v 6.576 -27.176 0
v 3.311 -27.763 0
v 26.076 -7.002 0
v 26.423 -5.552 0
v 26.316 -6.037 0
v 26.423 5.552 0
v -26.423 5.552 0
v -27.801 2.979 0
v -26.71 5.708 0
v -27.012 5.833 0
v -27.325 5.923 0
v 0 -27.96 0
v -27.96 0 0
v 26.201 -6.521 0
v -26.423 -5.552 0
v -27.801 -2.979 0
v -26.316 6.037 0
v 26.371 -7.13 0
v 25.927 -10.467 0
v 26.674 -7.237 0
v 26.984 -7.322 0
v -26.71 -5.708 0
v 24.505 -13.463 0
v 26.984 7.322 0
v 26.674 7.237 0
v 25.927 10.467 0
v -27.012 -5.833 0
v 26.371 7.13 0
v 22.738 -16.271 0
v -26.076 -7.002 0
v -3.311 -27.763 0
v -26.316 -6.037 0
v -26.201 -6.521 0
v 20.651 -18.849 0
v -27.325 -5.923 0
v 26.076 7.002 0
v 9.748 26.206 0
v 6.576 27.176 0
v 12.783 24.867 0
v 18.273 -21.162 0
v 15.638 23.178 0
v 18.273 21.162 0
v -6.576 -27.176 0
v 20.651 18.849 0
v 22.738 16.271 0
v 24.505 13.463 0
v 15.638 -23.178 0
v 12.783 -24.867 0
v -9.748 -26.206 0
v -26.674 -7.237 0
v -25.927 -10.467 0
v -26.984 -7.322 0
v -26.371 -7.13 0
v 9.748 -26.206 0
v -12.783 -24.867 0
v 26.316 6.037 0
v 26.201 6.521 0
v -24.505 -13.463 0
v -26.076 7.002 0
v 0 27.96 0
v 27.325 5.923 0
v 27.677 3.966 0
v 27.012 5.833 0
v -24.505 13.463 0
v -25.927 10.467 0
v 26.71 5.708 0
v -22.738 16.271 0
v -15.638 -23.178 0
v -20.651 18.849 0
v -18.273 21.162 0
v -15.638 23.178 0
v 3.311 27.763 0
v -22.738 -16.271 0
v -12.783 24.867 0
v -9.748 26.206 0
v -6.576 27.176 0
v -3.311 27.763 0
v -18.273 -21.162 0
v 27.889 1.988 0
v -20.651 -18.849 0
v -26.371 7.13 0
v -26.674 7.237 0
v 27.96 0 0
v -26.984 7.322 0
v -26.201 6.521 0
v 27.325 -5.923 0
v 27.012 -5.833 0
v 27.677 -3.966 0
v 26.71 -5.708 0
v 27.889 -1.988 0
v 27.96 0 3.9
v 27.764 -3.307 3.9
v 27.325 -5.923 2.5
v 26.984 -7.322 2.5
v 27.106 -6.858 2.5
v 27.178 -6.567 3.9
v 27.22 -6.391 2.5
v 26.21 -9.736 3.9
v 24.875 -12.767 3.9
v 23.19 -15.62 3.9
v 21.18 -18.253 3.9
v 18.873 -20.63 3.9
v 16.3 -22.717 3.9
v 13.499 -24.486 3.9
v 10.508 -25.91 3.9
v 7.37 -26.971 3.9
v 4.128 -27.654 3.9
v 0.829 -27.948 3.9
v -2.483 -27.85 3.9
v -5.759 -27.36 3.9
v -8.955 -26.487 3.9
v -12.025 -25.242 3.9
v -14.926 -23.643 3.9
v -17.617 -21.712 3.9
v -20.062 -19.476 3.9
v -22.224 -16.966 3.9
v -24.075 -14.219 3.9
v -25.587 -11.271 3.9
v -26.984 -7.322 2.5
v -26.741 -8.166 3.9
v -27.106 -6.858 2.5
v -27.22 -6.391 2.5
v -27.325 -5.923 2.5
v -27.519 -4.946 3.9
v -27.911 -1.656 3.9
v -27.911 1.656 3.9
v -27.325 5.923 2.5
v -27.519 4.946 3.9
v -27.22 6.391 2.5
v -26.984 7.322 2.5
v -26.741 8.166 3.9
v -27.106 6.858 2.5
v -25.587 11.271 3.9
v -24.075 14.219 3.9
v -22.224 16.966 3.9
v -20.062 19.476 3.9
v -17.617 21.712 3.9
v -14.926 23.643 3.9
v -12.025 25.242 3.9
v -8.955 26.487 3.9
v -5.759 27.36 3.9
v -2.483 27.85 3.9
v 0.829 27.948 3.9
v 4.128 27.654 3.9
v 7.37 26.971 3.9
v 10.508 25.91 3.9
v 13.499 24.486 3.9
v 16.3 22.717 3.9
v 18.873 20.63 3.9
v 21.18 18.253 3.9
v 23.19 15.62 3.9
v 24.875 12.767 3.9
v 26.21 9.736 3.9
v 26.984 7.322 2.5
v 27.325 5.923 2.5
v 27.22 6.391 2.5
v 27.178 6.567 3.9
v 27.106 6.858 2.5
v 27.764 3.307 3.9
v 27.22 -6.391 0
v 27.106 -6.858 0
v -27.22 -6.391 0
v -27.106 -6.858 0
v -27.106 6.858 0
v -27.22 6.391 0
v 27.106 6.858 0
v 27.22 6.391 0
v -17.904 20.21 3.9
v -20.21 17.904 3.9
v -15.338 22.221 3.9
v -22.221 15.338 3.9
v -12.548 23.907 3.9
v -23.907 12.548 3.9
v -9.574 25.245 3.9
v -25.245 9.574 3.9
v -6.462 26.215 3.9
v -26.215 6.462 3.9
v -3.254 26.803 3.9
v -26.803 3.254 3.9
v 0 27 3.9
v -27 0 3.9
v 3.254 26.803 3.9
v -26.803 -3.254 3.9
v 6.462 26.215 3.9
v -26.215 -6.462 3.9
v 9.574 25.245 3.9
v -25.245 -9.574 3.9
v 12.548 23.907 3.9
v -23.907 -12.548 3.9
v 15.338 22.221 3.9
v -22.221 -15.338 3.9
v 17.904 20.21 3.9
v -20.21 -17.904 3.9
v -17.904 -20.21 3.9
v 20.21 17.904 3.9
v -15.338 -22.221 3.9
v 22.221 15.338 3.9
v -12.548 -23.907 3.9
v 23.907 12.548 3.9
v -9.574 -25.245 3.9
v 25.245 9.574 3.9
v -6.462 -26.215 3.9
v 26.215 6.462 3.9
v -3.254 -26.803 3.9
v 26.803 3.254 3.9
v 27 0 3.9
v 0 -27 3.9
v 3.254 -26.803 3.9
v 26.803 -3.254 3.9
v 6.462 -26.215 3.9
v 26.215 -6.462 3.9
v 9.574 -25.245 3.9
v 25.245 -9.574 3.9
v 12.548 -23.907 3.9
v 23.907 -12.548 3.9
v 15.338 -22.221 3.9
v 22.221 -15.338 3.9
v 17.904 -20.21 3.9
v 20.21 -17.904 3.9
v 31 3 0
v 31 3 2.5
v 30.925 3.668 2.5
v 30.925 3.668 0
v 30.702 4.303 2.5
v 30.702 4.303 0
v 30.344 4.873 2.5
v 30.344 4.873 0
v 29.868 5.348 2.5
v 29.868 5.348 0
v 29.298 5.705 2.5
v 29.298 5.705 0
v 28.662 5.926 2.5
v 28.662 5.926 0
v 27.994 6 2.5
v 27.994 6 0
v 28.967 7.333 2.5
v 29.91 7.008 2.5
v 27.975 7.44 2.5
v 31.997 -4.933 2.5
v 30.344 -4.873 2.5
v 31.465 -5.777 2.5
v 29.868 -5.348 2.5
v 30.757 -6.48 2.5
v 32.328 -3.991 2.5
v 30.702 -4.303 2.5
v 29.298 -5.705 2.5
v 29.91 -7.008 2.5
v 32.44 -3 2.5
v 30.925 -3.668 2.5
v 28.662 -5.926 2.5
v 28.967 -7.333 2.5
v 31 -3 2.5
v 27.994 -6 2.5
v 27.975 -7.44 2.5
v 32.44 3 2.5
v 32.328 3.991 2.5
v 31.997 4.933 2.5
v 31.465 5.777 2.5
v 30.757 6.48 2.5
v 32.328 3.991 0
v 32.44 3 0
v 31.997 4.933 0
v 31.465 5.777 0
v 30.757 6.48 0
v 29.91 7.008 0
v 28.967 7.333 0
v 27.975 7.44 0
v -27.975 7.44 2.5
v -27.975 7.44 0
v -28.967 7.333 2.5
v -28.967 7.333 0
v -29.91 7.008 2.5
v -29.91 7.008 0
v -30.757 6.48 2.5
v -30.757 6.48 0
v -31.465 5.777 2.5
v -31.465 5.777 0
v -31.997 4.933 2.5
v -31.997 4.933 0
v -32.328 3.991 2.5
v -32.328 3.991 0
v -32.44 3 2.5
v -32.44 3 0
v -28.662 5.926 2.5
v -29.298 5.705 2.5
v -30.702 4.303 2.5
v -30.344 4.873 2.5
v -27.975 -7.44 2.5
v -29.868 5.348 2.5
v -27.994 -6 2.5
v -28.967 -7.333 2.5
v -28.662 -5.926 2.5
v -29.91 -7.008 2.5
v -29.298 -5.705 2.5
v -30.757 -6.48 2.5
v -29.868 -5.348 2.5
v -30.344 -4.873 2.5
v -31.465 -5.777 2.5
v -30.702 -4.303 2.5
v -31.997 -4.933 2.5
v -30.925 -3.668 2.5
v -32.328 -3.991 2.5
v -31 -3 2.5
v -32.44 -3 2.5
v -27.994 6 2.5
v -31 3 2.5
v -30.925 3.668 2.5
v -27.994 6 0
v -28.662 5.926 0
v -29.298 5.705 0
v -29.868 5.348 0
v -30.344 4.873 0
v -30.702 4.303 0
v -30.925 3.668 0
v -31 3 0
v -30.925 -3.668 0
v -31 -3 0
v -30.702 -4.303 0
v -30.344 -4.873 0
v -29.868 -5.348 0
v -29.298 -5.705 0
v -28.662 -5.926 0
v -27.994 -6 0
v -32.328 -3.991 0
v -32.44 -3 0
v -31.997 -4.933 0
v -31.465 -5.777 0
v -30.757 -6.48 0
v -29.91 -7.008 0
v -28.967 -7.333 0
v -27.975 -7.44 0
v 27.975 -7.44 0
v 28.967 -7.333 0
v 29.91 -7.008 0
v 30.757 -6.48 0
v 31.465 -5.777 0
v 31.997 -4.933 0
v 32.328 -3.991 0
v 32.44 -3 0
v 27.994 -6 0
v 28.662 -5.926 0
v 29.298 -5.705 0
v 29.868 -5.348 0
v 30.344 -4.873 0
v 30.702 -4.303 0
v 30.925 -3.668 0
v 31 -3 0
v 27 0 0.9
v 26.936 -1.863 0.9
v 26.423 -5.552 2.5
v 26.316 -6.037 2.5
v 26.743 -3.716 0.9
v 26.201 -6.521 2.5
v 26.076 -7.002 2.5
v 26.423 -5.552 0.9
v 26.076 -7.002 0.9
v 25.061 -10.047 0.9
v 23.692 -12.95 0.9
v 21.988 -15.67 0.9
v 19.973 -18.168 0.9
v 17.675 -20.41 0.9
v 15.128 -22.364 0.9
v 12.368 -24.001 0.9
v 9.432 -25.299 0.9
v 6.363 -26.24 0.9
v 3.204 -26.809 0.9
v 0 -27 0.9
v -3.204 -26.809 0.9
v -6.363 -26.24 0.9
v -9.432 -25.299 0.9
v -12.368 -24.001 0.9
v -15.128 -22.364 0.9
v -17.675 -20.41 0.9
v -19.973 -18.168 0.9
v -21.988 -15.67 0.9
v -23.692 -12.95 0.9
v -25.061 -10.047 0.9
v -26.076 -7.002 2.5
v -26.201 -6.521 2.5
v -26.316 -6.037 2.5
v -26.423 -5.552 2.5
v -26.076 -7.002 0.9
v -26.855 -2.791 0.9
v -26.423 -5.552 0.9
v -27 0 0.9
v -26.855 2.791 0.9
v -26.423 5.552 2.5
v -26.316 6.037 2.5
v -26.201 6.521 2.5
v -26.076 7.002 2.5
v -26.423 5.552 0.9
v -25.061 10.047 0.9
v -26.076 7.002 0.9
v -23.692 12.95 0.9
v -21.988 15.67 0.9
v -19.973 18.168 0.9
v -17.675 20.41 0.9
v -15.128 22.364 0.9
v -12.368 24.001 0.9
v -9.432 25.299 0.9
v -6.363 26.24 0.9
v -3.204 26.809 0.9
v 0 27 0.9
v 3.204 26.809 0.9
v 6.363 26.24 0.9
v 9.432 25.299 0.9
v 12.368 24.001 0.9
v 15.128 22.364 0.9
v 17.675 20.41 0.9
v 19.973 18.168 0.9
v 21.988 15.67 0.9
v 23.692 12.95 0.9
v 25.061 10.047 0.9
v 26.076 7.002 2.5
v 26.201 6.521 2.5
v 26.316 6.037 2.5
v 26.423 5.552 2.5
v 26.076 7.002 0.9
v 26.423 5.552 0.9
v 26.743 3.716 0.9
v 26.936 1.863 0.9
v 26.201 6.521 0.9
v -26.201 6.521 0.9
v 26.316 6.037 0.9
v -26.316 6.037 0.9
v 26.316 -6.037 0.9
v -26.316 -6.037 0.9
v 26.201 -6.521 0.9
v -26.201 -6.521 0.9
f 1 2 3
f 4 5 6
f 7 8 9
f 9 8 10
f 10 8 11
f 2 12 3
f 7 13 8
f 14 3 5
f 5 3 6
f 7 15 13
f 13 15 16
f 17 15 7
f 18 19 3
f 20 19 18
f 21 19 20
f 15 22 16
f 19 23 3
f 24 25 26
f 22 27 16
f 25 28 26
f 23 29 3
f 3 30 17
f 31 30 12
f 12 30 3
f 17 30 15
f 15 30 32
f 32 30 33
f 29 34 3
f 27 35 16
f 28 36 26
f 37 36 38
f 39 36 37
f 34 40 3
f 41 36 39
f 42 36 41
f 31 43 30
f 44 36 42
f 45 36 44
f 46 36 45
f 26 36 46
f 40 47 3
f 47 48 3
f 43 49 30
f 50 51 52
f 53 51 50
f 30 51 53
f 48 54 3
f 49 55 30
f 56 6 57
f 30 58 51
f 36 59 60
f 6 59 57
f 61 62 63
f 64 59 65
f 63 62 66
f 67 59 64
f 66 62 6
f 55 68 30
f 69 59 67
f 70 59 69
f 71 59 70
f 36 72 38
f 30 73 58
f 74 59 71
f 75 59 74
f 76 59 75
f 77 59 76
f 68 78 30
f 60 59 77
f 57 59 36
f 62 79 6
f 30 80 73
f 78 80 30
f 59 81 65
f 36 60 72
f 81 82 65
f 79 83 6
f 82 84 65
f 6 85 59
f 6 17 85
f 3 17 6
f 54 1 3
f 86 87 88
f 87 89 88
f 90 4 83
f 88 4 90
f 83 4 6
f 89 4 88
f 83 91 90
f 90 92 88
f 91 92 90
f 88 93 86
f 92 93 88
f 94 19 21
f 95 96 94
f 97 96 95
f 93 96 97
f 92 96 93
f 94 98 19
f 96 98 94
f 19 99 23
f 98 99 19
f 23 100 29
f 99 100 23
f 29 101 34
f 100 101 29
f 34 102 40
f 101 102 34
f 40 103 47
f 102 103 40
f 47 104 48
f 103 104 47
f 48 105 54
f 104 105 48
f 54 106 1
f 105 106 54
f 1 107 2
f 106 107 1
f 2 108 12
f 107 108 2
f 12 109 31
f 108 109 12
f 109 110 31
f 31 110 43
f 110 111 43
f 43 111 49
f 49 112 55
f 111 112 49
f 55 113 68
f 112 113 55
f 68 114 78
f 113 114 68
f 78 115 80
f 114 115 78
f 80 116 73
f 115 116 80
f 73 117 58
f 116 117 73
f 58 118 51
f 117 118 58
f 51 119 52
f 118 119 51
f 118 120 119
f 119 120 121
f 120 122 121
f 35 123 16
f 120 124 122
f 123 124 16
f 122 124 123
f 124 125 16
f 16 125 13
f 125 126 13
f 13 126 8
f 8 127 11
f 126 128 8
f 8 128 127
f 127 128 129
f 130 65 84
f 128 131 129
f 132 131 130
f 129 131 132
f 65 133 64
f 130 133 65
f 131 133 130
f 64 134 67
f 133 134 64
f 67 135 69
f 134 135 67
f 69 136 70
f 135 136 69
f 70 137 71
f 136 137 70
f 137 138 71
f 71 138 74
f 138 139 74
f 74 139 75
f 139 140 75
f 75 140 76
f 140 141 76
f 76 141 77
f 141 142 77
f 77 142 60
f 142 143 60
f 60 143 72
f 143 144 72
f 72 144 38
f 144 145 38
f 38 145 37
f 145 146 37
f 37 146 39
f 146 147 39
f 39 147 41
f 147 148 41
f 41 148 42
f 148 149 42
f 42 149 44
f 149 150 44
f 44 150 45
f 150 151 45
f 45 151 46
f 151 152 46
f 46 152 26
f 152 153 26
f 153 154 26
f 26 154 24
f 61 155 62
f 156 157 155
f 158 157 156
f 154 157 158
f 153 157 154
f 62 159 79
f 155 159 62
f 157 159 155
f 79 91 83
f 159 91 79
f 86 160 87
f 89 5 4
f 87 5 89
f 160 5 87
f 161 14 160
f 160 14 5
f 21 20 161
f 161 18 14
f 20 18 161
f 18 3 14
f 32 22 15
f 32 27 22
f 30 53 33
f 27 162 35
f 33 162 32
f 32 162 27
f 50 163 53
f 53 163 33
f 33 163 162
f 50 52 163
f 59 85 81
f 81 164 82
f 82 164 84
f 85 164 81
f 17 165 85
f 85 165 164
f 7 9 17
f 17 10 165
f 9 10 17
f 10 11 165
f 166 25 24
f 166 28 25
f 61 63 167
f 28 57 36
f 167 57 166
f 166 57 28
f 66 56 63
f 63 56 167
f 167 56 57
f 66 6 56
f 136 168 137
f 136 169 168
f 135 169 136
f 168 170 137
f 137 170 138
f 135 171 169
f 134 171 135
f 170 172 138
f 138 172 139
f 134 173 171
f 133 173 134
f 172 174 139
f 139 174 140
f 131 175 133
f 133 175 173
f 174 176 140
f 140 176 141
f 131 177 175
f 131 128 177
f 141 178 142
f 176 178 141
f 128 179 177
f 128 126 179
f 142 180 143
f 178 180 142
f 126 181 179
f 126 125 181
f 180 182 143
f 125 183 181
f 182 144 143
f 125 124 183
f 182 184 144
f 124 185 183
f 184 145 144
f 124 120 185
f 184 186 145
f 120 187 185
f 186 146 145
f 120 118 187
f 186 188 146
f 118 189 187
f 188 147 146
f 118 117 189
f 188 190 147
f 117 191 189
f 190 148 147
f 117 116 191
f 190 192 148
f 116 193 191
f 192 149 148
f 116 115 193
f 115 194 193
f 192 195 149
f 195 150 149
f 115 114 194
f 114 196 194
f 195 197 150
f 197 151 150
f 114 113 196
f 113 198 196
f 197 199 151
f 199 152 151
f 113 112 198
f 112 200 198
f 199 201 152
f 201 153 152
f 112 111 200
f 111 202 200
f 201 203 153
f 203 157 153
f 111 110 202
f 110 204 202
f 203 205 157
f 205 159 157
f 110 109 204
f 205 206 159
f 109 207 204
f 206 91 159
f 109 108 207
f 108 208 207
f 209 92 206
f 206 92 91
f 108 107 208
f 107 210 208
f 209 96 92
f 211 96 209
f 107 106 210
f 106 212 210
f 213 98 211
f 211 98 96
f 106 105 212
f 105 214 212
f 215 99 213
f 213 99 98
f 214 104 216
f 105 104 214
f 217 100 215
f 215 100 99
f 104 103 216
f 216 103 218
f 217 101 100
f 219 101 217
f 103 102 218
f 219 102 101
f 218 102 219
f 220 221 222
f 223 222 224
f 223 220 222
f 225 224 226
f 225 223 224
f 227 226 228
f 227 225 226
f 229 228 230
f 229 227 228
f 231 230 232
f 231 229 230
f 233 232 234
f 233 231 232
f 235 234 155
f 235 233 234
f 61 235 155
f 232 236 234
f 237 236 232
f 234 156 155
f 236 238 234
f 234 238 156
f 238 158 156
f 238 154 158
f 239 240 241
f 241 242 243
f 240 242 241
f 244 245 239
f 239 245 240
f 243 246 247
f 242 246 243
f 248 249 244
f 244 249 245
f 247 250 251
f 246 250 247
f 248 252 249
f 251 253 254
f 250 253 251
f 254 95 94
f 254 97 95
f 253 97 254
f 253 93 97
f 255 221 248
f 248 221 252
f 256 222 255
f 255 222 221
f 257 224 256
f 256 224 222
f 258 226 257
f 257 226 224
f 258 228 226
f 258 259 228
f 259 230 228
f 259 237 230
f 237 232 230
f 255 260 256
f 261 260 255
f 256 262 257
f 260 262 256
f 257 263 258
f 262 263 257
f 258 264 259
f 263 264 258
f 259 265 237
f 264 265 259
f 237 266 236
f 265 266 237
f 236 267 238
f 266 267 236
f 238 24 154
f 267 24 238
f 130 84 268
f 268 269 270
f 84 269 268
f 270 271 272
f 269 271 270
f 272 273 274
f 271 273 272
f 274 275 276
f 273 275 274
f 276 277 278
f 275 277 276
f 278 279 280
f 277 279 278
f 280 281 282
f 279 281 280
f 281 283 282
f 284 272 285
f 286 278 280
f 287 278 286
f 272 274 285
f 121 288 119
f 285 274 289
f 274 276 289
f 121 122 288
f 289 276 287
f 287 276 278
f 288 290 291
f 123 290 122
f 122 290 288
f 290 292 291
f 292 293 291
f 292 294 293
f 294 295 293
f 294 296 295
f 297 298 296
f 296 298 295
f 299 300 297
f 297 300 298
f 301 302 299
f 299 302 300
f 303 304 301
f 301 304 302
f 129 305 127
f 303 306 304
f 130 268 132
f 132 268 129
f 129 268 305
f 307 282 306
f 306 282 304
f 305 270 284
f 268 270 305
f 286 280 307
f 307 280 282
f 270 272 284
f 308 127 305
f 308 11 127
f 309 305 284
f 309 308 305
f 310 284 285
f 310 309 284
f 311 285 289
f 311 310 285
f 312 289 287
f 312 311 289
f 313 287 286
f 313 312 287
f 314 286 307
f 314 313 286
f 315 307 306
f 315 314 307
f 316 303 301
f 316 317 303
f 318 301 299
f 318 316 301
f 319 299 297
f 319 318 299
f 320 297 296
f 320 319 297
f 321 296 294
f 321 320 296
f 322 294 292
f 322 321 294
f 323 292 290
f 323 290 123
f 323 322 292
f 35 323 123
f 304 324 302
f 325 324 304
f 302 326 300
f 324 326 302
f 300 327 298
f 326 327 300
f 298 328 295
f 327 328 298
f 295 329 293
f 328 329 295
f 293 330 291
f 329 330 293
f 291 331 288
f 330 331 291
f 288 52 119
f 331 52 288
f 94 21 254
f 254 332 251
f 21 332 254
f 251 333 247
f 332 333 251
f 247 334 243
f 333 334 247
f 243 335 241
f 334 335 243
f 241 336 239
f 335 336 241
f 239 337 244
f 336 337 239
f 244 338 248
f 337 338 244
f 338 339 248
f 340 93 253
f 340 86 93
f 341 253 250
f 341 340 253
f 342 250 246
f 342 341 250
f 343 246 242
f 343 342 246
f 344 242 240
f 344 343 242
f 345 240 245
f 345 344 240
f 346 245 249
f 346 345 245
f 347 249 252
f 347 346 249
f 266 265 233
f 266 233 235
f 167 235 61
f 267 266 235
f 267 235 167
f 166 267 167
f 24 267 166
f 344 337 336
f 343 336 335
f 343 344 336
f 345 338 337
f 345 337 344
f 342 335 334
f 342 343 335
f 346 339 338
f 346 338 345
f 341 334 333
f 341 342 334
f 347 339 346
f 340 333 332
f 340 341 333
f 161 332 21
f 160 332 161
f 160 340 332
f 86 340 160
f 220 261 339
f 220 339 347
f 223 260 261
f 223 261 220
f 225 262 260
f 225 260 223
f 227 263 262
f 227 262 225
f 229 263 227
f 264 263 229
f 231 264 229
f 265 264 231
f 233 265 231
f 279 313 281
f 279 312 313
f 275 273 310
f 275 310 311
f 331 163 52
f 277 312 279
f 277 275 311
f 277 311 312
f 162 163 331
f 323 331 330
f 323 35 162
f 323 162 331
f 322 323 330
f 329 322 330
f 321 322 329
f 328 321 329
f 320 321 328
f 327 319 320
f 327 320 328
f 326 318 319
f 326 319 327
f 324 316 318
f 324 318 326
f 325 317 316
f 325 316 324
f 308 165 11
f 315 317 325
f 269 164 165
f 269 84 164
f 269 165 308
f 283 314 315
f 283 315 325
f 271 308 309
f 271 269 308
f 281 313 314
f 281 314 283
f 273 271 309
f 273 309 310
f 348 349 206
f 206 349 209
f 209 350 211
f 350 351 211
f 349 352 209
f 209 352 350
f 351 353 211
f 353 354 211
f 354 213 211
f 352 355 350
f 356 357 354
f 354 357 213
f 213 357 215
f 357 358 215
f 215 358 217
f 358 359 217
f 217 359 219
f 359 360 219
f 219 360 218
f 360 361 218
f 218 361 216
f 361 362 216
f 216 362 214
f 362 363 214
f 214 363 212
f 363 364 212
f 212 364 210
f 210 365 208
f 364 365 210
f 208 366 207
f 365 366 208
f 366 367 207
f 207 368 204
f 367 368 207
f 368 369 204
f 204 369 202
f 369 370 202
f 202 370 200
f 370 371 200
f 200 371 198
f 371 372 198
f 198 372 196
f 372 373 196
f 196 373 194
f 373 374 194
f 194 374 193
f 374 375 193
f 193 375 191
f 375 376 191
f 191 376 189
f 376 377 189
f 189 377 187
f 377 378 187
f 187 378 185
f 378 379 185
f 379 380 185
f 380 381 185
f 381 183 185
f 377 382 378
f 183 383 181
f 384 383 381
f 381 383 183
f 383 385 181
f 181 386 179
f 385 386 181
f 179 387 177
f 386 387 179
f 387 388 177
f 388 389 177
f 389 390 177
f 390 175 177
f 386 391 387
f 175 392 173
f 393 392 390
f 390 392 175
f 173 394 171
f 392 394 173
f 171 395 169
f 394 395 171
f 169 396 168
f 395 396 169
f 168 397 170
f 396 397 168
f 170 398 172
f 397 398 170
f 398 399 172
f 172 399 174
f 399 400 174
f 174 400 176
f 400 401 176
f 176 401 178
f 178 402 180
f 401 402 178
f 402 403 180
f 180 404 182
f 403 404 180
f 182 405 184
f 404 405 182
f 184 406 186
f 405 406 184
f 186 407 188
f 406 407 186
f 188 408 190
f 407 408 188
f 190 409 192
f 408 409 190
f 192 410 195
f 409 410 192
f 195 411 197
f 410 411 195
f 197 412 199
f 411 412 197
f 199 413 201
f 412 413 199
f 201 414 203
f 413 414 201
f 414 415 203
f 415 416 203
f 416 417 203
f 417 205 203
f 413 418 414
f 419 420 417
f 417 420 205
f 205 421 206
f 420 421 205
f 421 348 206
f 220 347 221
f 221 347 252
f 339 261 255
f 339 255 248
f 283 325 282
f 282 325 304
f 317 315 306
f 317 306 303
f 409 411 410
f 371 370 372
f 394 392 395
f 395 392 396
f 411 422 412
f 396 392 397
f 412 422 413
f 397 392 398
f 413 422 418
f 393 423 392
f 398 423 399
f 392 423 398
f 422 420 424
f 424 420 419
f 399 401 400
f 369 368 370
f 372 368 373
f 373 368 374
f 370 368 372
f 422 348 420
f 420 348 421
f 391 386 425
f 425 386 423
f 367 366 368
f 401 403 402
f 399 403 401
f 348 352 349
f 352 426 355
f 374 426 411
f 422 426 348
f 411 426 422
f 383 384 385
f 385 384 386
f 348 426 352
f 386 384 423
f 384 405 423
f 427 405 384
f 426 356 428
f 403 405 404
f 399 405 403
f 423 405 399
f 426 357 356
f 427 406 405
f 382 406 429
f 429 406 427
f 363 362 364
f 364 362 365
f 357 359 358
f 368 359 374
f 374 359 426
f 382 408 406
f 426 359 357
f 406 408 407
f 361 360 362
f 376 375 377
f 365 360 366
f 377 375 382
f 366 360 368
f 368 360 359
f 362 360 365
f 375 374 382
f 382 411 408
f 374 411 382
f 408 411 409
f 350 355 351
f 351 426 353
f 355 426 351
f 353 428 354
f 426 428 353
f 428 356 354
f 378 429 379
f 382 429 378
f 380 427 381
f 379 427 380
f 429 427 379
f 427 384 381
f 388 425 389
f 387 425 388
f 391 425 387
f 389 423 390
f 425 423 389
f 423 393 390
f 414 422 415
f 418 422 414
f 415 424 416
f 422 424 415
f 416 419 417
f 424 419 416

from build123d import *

# Parameters (mm, degrees)
PAD_DEPTH = 2.5


with BuildPart() as part:
    # Sketch → Revolution (revolve)
    with BuildSketch(Plane.XZ):
        Polygon((0, 0), (27.96, 0), (27.96, 3.9), (27, 3.9), (27, 0.9), (0, 0.9), align=None)
    revolve(axis=Axis((0, 0, 0), (0, 0, 1)))

    # Sketch001 → Pad (new body)
    with BuildSketch(Plane.XY):
        with BuildLine():
            ThreePointArc((31, 3), (29.460989, 5.620212), (26.422993, 5.552067))
            ThreePointArc((26.422993, 5.552067), (26.259684, 6.279253), (26.076366, 7.001654))
            ThreePointArc((32.44, 3), (30.363542, 6.758626), (26.076366, 7.001654))
            Line((32.44, 3), (32.44, -3))
            ThreePointArc((26.076366, -7.001654), (30.363542, -6.758626), (32.44, -3))
            ThreePointArc((26.076366, -7.001654), (26.259684, -6.279253), (26.422993, -5.552067))
            ThreePointArc((26.422993, -5.552067), (29.460989, -5.620212), (31, -3))
            Line((31, 3), (31, -3))
        make_face()
        with BuildLine():
            ThreePointArc((-26.422993, 5.552067), (-29.460989, 5.620212), (-31, 3))
            Line((-31, 3), (-31, -3))
            ThreePointArc((-31, -3), (-29.460989, -5.620212), (-26.422993, -5.552067))
            ThreePointArc((-26.422993, -5.552067), (-26.259684, -6.279253), (-26.076366, -7.001654))
            ThreePointArc((-32.44, -3), (-30.363542, -6.758626), (-26.076366, -7.001654))
            Line((-32.44, 3), (-32.44, -3))
            ThreePointArc((-26.076366, 7.001654), (-30.363542, 6.758626), (-32.44, 3))
            ThreePointArc((-26.076366, 7.001654), (-26.259684, 6.279253), (-26.422993, 5.552067))
        make_face()
    extrude(amount=PAD_DEPTH)


solid = part.part
